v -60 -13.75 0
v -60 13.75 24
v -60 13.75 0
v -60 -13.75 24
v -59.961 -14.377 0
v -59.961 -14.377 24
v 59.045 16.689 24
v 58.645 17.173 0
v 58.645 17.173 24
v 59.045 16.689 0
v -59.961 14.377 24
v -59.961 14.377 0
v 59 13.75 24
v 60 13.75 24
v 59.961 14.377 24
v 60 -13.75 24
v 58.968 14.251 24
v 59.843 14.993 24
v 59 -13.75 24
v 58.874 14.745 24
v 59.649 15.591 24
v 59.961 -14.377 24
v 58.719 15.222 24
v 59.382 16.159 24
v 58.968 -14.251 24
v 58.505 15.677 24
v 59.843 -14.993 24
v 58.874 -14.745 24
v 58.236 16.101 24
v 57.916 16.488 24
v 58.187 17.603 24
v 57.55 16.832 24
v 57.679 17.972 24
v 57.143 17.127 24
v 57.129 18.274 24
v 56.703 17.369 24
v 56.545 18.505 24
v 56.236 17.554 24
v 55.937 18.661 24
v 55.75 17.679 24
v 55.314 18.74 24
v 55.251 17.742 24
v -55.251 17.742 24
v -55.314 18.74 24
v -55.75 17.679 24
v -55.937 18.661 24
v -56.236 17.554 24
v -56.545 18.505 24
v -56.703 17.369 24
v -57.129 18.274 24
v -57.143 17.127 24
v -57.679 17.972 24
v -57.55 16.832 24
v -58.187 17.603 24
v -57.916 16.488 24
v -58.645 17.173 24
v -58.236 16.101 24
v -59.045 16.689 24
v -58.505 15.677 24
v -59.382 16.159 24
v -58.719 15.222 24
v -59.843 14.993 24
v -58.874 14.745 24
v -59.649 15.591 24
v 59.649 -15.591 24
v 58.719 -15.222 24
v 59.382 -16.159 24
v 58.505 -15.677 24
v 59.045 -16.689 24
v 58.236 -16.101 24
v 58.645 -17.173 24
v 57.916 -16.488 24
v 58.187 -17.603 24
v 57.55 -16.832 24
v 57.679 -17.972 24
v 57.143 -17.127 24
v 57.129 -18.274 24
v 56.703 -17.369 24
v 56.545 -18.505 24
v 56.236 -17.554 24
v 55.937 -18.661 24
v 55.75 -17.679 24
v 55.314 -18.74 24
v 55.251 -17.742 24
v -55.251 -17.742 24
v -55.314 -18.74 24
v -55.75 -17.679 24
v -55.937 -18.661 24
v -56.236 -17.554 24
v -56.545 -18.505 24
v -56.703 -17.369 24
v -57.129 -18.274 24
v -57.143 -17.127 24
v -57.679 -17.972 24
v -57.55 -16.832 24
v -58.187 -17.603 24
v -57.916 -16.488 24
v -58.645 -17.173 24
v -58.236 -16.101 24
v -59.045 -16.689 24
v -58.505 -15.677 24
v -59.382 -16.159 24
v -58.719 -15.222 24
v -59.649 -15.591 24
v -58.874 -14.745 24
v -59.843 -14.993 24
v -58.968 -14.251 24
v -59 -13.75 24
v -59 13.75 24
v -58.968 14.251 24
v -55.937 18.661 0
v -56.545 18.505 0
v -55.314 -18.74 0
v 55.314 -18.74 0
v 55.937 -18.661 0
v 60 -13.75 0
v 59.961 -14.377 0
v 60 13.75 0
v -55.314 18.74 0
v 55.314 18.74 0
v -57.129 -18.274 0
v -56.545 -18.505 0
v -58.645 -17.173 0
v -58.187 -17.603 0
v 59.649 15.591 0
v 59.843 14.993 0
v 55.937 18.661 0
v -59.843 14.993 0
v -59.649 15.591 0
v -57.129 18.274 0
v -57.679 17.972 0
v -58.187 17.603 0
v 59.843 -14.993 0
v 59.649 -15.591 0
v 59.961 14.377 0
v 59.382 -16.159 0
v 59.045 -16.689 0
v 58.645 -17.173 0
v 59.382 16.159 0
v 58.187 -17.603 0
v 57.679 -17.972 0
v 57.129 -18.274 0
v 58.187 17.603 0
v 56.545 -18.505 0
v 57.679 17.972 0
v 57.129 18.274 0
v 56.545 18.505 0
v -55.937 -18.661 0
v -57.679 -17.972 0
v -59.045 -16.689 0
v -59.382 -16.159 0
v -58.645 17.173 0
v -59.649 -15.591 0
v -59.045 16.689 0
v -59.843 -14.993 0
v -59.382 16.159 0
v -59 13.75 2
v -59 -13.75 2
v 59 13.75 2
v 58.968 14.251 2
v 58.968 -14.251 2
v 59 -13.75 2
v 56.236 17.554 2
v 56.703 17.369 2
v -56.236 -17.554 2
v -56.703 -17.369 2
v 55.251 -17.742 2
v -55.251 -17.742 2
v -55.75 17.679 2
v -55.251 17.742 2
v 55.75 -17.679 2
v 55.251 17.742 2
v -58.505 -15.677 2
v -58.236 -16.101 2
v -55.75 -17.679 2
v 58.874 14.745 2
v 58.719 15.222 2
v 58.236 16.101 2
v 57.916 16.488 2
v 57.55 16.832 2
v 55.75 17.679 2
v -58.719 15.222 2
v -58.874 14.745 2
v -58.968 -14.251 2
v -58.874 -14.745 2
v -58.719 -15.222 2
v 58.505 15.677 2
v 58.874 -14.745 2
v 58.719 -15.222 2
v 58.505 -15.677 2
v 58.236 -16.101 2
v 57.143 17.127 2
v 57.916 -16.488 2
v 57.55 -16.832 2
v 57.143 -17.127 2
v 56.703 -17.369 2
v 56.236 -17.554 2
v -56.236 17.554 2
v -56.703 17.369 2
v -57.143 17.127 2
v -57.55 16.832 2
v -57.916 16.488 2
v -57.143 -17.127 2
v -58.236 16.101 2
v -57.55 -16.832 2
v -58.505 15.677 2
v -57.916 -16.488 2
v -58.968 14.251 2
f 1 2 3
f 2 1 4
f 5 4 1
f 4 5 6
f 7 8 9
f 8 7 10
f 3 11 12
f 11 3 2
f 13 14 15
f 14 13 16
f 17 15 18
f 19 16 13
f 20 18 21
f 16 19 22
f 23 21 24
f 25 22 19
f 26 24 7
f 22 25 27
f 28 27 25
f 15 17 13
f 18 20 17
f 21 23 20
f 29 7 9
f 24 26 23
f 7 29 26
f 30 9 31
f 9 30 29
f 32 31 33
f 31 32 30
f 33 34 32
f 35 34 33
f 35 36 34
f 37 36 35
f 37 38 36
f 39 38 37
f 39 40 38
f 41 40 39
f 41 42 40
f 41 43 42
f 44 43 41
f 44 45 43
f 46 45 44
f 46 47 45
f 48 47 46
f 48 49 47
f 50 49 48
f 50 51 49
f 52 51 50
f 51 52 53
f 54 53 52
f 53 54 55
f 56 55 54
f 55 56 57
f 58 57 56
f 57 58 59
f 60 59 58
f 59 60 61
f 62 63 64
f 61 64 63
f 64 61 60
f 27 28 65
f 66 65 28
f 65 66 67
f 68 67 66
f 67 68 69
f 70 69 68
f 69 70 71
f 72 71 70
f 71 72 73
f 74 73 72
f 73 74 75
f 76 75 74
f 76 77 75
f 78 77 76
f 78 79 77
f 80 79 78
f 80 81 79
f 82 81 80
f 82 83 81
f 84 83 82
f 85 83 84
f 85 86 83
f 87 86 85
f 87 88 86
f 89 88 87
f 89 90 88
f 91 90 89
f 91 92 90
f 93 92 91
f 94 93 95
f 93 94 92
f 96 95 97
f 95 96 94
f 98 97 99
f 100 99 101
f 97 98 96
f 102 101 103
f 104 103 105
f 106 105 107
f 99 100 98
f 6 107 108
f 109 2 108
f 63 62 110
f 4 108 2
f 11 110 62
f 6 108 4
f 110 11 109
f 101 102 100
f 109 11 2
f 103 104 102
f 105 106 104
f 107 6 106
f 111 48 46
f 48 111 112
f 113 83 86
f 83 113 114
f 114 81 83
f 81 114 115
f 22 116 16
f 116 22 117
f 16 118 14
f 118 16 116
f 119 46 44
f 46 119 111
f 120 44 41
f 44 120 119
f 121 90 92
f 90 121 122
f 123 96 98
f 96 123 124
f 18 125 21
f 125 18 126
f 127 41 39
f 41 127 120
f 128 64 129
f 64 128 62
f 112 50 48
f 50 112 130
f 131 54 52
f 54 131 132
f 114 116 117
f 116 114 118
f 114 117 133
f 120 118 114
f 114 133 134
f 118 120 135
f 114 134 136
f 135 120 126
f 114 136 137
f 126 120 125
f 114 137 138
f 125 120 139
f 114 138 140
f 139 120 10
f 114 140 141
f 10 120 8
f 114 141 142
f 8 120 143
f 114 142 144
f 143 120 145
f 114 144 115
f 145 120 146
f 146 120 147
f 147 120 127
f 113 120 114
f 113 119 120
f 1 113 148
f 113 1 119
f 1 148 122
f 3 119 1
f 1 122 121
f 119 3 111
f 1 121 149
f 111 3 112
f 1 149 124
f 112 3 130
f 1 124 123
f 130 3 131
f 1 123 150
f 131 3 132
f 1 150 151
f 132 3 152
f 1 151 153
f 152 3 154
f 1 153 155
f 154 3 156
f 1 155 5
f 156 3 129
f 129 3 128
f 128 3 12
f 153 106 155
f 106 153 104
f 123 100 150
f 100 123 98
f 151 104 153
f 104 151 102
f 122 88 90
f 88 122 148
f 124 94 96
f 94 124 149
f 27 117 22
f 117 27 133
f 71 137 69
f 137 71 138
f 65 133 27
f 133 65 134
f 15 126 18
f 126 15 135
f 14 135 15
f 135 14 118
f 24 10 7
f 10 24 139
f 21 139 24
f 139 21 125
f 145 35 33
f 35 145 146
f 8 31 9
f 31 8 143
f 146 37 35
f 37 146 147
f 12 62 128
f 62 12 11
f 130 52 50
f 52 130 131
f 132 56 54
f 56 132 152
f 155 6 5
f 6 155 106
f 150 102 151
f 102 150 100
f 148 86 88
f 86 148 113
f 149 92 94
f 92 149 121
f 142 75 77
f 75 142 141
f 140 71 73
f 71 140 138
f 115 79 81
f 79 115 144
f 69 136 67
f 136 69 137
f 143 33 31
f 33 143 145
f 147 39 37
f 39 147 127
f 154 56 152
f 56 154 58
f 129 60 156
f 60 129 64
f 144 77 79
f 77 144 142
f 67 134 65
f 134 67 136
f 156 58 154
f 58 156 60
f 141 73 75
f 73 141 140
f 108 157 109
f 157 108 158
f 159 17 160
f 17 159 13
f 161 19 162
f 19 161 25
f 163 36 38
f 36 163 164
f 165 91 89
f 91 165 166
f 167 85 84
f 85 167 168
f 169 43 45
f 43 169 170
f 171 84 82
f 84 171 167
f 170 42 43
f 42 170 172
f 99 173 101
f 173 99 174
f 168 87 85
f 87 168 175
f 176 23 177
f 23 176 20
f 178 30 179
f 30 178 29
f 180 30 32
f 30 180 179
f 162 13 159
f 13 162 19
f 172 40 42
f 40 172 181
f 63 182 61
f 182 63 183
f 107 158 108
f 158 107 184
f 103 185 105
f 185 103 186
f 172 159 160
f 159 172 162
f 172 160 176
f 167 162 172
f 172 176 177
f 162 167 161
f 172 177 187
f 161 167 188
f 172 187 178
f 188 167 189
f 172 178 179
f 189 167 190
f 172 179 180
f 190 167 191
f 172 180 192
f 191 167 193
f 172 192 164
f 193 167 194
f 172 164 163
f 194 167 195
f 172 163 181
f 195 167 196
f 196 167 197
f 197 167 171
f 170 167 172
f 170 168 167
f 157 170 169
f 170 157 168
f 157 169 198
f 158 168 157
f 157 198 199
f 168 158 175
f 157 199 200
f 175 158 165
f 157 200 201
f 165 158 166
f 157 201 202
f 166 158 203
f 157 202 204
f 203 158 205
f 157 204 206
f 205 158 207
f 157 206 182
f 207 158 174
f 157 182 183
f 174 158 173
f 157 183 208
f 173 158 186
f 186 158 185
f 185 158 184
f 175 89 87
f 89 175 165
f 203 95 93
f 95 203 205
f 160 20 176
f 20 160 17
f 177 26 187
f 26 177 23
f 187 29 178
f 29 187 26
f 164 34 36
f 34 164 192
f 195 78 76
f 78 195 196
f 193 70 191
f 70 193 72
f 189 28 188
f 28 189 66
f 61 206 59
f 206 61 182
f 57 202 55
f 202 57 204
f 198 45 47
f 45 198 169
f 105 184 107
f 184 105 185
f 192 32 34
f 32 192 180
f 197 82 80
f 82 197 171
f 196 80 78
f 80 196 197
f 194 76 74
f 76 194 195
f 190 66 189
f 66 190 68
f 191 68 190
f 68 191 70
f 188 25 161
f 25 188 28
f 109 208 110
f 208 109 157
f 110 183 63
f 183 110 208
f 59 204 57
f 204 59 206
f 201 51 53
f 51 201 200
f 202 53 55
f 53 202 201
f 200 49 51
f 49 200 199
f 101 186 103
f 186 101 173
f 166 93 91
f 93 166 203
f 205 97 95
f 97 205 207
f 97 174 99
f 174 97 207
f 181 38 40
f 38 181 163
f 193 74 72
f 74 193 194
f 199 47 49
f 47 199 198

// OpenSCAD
$fn = 50;


difference() {
	union() {
		hull() {
			translate(v = [-55.0000000000, 13.7500000000, 0]) {
				cylinder(h = 24, r = 5);
			}
			translate(v = [55.0000000000, 13.7500000000, 0]) {
				cylinder(h = 24, r = 5);
			}
			translate(v = [-55.0000000000, -13.7500000000, 0]) {
				cylinder(h = 24, r = 5);
			}
			translate(v = [55.0000000000, -13.7500000000, 0]) {
				cylinder(h = 24, r = 5);
			}
		}
	}
	union() {
		translate(v = [0, 0, 2]) {
			hull() {
				translate(v = [-55.0000000000, 13.7500000000, 0]) {
					cylinder(h = 22, r = 4);
				}
				translate(v = [55.0000000000, 13.7500000000, 0]) {
					cylinder(h = 22, r = 4);
				}
				translate(v = [-55.0000000000, -13.7500000000, 0]) {
					cylinder(h = 22, r = 4);
				}
				translate(v = [55.0000000000, -13.7500000000, 0]) {
					cylinder(h = 22, r = 4);
				}
			}
		}
	}
}
